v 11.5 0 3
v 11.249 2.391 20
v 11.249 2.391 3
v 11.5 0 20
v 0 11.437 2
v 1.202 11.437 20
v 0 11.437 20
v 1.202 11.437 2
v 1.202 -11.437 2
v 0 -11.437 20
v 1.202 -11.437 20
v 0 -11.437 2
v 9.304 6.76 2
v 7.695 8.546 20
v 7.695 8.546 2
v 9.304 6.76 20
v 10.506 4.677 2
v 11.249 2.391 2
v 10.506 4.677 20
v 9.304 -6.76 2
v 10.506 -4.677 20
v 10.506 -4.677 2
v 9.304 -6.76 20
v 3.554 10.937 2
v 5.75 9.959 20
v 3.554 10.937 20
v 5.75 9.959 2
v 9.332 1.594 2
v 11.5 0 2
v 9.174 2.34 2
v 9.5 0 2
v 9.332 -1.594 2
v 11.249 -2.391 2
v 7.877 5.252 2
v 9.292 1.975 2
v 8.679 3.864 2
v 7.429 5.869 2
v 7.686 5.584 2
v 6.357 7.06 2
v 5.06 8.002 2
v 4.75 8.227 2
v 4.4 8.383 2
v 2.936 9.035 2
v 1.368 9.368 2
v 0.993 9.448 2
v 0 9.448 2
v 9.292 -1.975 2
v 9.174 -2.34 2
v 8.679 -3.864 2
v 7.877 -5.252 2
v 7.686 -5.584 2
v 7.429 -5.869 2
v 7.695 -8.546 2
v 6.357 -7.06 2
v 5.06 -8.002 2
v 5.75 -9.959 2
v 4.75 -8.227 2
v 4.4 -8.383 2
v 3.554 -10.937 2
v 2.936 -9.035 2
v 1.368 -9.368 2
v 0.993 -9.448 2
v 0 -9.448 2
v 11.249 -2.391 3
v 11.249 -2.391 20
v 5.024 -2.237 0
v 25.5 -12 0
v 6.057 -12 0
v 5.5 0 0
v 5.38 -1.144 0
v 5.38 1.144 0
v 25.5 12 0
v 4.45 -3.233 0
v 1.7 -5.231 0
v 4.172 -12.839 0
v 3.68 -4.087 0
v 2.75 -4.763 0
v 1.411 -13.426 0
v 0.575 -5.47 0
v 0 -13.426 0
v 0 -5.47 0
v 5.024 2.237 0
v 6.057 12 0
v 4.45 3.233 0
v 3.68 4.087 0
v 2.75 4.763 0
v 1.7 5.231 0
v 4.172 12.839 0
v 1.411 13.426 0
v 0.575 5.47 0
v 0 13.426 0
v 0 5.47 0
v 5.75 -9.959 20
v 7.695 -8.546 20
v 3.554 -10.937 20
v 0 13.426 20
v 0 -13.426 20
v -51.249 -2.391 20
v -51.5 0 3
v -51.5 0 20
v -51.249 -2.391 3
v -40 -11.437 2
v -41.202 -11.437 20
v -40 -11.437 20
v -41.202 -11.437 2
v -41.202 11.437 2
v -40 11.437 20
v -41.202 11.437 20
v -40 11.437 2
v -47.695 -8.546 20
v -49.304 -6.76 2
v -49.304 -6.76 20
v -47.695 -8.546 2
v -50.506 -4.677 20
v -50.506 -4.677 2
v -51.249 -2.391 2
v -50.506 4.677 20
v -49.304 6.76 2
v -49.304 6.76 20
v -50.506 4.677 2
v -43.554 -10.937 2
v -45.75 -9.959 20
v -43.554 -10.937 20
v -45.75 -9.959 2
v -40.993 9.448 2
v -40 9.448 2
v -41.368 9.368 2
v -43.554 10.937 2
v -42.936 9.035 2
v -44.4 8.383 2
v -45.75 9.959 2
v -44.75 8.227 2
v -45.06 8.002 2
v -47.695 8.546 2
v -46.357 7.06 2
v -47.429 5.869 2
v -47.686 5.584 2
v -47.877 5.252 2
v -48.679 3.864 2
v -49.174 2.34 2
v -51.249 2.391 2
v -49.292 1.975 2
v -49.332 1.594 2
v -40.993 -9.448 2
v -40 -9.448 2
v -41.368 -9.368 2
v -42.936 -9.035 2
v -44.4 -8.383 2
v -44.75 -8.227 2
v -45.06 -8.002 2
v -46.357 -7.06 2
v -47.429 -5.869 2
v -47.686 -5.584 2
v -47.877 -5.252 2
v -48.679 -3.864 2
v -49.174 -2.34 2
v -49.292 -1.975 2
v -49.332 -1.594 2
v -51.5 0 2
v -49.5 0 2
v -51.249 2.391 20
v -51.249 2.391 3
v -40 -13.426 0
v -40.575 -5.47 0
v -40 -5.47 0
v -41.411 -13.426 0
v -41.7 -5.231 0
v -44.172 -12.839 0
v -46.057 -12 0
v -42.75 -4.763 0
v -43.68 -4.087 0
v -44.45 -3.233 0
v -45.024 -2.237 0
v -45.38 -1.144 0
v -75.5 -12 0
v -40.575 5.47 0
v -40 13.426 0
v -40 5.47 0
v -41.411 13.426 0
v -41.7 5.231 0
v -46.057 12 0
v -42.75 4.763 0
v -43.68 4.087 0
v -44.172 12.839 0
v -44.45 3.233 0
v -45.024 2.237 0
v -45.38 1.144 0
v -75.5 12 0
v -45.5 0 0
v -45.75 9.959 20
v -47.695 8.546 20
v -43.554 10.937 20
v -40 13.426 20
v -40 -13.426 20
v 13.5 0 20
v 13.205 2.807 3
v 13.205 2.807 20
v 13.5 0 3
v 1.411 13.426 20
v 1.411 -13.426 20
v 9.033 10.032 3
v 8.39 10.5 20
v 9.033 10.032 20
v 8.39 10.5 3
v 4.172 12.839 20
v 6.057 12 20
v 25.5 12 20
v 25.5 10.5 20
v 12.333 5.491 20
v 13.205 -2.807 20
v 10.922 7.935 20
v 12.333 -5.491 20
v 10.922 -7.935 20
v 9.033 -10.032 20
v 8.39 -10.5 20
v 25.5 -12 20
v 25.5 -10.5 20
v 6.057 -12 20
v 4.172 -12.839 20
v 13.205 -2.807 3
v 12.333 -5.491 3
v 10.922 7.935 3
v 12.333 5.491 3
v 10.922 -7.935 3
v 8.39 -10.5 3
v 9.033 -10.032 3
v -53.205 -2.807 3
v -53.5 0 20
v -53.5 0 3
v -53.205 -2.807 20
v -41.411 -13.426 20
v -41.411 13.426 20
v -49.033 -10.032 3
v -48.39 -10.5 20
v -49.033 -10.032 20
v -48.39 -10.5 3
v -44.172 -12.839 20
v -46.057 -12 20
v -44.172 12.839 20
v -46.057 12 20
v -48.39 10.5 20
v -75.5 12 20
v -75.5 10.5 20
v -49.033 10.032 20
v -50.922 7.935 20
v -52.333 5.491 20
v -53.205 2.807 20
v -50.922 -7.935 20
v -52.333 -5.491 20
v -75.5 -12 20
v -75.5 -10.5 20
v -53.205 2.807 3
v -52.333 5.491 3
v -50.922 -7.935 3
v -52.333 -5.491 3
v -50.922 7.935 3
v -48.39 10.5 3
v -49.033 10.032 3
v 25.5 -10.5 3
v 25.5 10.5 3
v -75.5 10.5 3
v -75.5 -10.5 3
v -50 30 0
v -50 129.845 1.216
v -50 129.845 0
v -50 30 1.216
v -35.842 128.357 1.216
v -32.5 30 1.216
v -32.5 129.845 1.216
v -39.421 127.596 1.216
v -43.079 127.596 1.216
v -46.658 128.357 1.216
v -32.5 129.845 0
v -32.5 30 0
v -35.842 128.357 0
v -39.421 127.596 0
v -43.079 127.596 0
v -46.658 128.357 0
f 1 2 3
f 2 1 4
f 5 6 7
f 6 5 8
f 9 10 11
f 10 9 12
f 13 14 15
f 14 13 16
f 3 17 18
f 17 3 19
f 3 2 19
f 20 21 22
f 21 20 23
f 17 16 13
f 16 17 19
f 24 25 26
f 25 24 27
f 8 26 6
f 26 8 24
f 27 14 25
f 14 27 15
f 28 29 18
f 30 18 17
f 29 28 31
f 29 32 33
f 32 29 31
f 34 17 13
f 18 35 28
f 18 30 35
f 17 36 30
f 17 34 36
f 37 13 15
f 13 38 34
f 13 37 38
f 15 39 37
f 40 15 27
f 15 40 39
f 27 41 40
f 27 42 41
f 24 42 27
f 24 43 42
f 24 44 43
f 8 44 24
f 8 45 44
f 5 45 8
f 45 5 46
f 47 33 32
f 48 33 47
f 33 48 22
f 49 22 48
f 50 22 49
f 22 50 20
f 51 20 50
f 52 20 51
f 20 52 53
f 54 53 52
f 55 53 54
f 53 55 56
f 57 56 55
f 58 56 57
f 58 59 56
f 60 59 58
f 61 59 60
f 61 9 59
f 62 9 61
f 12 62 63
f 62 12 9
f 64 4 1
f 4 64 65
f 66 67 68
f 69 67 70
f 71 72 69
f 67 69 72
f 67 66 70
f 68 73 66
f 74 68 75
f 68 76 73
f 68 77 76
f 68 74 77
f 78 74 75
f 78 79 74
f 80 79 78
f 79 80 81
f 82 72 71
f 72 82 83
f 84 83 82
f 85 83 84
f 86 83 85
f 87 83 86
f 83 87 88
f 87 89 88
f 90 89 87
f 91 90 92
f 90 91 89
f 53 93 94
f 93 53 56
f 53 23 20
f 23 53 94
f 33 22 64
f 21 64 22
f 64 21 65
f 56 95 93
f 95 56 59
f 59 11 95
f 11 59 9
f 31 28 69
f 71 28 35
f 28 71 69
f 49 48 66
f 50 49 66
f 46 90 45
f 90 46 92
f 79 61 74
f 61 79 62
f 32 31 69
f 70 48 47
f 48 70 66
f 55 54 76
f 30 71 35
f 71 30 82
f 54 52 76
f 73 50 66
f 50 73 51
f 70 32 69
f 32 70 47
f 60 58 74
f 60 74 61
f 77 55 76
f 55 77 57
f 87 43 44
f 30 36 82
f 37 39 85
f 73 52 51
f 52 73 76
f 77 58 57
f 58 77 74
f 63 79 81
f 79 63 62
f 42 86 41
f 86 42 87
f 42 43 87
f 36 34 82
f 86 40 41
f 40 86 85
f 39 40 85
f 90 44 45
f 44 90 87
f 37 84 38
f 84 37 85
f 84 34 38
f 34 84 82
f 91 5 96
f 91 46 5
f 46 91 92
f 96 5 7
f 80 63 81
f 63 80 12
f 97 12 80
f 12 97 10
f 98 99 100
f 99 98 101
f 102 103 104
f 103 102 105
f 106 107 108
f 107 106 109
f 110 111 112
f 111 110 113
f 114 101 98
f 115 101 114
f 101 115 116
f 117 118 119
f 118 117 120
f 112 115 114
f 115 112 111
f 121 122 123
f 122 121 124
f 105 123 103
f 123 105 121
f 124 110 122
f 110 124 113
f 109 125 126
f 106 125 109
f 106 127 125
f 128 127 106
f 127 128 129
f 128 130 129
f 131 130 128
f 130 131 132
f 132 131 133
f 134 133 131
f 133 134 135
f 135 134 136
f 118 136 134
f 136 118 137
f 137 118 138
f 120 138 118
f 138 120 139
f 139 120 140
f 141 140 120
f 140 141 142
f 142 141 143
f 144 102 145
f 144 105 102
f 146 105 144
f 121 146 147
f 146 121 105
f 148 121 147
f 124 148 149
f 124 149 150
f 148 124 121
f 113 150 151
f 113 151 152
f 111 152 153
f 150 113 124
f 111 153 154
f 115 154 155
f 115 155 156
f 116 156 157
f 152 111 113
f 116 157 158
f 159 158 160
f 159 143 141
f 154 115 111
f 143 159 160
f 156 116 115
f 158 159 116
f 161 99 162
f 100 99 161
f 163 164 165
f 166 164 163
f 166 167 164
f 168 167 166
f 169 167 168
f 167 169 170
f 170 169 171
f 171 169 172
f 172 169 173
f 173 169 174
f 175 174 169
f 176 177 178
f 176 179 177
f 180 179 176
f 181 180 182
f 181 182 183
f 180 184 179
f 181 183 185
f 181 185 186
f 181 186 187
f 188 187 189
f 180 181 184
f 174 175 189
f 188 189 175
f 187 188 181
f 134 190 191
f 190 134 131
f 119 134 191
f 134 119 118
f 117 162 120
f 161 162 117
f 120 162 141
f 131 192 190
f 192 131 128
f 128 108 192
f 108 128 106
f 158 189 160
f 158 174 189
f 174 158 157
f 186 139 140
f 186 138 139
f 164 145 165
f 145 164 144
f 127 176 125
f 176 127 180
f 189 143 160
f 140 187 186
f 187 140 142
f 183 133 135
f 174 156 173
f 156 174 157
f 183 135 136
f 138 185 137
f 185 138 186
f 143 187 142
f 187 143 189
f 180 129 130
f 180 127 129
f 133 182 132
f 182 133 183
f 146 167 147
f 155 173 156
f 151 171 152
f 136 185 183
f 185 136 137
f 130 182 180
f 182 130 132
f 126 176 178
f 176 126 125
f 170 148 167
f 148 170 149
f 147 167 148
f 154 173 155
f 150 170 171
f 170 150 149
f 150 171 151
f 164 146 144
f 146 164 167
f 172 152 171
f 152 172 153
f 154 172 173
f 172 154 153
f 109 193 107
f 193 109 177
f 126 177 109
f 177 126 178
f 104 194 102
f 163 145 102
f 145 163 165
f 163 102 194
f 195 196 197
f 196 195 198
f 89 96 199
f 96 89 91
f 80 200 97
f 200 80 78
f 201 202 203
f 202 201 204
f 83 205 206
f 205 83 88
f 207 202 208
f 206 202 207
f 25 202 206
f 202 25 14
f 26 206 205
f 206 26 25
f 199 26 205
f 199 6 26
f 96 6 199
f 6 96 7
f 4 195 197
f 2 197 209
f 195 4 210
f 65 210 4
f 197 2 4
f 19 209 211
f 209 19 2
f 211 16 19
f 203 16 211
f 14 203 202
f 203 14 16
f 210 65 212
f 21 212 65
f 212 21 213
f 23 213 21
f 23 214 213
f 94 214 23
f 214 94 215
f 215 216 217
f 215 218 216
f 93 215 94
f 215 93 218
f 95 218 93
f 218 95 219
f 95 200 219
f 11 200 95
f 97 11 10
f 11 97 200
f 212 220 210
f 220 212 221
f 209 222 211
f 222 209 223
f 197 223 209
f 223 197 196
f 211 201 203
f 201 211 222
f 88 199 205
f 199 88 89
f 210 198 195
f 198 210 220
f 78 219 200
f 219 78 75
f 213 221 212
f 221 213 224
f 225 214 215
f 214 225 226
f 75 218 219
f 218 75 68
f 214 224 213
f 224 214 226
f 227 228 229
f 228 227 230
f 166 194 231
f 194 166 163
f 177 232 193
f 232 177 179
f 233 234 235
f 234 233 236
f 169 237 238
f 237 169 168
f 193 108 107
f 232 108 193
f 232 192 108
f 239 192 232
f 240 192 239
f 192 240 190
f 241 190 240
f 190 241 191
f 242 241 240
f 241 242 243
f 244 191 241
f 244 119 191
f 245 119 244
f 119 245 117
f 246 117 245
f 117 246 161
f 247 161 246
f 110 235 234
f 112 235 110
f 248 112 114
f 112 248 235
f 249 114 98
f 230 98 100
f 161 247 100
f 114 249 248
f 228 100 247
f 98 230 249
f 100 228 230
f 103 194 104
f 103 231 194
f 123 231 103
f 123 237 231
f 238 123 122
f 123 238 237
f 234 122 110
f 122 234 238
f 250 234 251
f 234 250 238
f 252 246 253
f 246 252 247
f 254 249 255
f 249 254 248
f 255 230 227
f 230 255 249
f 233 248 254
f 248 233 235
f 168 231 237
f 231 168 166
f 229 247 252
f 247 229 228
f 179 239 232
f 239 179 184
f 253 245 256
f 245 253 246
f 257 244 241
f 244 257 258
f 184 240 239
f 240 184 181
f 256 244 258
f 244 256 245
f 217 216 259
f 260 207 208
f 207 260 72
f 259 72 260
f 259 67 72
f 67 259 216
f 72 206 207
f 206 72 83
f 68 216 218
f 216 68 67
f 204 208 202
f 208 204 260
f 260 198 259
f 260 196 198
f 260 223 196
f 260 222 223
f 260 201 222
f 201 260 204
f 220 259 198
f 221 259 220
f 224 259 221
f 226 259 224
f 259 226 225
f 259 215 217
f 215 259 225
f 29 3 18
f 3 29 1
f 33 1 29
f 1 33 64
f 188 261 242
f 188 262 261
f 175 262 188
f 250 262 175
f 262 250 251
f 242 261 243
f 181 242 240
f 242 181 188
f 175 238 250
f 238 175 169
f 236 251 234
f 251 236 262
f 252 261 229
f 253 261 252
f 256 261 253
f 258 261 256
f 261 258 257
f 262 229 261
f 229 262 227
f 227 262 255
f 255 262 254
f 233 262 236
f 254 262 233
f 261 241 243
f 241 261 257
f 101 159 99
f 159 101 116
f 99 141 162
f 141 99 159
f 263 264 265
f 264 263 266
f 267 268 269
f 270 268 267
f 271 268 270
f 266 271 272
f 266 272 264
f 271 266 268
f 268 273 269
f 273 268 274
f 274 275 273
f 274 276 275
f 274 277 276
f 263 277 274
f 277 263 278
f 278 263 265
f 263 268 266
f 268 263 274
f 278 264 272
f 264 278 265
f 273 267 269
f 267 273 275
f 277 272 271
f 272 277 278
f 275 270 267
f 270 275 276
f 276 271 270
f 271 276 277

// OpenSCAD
h = 20;
innerr = 11.5;
outerr = 13.5;
pennyradius = 10;
pennyheight = 1.52;
length1 = 10;

module hollowcylinder() {
    difference() {
        cylinder(h, outerr, outerr);
        cylinder(h, innerr, innerr);
    }
}

module halfcylinder () {
    intersection() {
        hollowcylinder();
        translate([0,-outerr,0]) {
            cube([outerr,2*outerr,100]);
        }
    }
}

module rotatedhalfcyl() {
    translate([-40, 0, 0]) {
        rotate([0, 0, 180]) {
            halfcylinder();
        }
    }
}

module innerportion() {
    difference() {
        cylinder(2, innerr, innerr);
        cylinder(3, innerr - 6, innerr);
        
    }
}

module innerhalf(){
    intersection() {
        innerportion();
        translate([0, -innerr, 0]) cube([innerr, 2*innerr, 5]);
    }
}

module transinnerhalf() {
    translate([-40, 0, 0]) {
        rotate([0, 0, 180]) innerhalf();
    }
}

module pennystuff(length) {
    difference() {
        translate([outerr - 6, -1.2*pennyradius, 0]) {
                difference() {
                    cube([length*length1, 2.4*pennyradius, h]);
                    translate([0, 0.15*pennyradius, 3]) cube([length*length1, 2.1*pennyradius, h]);
            }
        }
        cylinder(h, outerr, outerr);
    }
}

module entrance() {
    translate([-2, 0, 0]) pennystuff(2);
}

module exit() {
    rotate([0, 0, 180]) {
        translate([38, 0 , 0]) pennystuff(3); 
    }  
}

module finger() {
    difference() {
        cube([1.75*pennyradius, 120, 0.8*pennyheight]);
        translate ([0.5*1.75*pennyradius, 115, 0]) cylinder(pennyheight, 1.75*pennyradius, 1.75*pennyradius);
    }
}

module transfinger() {
    translate([-50, 30, 0]) finger();
}

innerhalf();

transinnerhalf();

rotatedhalfcyl();

halfcylinder();

entrance();

exit();

transfinger();
